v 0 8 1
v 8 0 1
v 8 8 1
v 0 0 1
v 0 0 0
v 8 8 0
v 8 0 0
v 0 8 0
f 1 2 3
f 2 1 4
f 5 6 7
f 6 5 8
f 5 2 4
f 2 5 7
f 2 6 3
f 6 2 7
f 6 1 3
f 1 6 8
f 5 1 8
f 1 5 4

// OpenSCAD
/* Warning, this is a very basic generator with a lot of approximation 
input data : [VFLGA, 7WX, 8x8x1.0mm, 68, , A, C04-00373A]
generated by com.zoubworld.electronics.cad.model3d.Basic
Date : Sun Feb 15 10:50:48 CET 2026
*/

//body
color("black")
translate([0,0,0])
cube([8.0,8.0,1.0], center=false);
